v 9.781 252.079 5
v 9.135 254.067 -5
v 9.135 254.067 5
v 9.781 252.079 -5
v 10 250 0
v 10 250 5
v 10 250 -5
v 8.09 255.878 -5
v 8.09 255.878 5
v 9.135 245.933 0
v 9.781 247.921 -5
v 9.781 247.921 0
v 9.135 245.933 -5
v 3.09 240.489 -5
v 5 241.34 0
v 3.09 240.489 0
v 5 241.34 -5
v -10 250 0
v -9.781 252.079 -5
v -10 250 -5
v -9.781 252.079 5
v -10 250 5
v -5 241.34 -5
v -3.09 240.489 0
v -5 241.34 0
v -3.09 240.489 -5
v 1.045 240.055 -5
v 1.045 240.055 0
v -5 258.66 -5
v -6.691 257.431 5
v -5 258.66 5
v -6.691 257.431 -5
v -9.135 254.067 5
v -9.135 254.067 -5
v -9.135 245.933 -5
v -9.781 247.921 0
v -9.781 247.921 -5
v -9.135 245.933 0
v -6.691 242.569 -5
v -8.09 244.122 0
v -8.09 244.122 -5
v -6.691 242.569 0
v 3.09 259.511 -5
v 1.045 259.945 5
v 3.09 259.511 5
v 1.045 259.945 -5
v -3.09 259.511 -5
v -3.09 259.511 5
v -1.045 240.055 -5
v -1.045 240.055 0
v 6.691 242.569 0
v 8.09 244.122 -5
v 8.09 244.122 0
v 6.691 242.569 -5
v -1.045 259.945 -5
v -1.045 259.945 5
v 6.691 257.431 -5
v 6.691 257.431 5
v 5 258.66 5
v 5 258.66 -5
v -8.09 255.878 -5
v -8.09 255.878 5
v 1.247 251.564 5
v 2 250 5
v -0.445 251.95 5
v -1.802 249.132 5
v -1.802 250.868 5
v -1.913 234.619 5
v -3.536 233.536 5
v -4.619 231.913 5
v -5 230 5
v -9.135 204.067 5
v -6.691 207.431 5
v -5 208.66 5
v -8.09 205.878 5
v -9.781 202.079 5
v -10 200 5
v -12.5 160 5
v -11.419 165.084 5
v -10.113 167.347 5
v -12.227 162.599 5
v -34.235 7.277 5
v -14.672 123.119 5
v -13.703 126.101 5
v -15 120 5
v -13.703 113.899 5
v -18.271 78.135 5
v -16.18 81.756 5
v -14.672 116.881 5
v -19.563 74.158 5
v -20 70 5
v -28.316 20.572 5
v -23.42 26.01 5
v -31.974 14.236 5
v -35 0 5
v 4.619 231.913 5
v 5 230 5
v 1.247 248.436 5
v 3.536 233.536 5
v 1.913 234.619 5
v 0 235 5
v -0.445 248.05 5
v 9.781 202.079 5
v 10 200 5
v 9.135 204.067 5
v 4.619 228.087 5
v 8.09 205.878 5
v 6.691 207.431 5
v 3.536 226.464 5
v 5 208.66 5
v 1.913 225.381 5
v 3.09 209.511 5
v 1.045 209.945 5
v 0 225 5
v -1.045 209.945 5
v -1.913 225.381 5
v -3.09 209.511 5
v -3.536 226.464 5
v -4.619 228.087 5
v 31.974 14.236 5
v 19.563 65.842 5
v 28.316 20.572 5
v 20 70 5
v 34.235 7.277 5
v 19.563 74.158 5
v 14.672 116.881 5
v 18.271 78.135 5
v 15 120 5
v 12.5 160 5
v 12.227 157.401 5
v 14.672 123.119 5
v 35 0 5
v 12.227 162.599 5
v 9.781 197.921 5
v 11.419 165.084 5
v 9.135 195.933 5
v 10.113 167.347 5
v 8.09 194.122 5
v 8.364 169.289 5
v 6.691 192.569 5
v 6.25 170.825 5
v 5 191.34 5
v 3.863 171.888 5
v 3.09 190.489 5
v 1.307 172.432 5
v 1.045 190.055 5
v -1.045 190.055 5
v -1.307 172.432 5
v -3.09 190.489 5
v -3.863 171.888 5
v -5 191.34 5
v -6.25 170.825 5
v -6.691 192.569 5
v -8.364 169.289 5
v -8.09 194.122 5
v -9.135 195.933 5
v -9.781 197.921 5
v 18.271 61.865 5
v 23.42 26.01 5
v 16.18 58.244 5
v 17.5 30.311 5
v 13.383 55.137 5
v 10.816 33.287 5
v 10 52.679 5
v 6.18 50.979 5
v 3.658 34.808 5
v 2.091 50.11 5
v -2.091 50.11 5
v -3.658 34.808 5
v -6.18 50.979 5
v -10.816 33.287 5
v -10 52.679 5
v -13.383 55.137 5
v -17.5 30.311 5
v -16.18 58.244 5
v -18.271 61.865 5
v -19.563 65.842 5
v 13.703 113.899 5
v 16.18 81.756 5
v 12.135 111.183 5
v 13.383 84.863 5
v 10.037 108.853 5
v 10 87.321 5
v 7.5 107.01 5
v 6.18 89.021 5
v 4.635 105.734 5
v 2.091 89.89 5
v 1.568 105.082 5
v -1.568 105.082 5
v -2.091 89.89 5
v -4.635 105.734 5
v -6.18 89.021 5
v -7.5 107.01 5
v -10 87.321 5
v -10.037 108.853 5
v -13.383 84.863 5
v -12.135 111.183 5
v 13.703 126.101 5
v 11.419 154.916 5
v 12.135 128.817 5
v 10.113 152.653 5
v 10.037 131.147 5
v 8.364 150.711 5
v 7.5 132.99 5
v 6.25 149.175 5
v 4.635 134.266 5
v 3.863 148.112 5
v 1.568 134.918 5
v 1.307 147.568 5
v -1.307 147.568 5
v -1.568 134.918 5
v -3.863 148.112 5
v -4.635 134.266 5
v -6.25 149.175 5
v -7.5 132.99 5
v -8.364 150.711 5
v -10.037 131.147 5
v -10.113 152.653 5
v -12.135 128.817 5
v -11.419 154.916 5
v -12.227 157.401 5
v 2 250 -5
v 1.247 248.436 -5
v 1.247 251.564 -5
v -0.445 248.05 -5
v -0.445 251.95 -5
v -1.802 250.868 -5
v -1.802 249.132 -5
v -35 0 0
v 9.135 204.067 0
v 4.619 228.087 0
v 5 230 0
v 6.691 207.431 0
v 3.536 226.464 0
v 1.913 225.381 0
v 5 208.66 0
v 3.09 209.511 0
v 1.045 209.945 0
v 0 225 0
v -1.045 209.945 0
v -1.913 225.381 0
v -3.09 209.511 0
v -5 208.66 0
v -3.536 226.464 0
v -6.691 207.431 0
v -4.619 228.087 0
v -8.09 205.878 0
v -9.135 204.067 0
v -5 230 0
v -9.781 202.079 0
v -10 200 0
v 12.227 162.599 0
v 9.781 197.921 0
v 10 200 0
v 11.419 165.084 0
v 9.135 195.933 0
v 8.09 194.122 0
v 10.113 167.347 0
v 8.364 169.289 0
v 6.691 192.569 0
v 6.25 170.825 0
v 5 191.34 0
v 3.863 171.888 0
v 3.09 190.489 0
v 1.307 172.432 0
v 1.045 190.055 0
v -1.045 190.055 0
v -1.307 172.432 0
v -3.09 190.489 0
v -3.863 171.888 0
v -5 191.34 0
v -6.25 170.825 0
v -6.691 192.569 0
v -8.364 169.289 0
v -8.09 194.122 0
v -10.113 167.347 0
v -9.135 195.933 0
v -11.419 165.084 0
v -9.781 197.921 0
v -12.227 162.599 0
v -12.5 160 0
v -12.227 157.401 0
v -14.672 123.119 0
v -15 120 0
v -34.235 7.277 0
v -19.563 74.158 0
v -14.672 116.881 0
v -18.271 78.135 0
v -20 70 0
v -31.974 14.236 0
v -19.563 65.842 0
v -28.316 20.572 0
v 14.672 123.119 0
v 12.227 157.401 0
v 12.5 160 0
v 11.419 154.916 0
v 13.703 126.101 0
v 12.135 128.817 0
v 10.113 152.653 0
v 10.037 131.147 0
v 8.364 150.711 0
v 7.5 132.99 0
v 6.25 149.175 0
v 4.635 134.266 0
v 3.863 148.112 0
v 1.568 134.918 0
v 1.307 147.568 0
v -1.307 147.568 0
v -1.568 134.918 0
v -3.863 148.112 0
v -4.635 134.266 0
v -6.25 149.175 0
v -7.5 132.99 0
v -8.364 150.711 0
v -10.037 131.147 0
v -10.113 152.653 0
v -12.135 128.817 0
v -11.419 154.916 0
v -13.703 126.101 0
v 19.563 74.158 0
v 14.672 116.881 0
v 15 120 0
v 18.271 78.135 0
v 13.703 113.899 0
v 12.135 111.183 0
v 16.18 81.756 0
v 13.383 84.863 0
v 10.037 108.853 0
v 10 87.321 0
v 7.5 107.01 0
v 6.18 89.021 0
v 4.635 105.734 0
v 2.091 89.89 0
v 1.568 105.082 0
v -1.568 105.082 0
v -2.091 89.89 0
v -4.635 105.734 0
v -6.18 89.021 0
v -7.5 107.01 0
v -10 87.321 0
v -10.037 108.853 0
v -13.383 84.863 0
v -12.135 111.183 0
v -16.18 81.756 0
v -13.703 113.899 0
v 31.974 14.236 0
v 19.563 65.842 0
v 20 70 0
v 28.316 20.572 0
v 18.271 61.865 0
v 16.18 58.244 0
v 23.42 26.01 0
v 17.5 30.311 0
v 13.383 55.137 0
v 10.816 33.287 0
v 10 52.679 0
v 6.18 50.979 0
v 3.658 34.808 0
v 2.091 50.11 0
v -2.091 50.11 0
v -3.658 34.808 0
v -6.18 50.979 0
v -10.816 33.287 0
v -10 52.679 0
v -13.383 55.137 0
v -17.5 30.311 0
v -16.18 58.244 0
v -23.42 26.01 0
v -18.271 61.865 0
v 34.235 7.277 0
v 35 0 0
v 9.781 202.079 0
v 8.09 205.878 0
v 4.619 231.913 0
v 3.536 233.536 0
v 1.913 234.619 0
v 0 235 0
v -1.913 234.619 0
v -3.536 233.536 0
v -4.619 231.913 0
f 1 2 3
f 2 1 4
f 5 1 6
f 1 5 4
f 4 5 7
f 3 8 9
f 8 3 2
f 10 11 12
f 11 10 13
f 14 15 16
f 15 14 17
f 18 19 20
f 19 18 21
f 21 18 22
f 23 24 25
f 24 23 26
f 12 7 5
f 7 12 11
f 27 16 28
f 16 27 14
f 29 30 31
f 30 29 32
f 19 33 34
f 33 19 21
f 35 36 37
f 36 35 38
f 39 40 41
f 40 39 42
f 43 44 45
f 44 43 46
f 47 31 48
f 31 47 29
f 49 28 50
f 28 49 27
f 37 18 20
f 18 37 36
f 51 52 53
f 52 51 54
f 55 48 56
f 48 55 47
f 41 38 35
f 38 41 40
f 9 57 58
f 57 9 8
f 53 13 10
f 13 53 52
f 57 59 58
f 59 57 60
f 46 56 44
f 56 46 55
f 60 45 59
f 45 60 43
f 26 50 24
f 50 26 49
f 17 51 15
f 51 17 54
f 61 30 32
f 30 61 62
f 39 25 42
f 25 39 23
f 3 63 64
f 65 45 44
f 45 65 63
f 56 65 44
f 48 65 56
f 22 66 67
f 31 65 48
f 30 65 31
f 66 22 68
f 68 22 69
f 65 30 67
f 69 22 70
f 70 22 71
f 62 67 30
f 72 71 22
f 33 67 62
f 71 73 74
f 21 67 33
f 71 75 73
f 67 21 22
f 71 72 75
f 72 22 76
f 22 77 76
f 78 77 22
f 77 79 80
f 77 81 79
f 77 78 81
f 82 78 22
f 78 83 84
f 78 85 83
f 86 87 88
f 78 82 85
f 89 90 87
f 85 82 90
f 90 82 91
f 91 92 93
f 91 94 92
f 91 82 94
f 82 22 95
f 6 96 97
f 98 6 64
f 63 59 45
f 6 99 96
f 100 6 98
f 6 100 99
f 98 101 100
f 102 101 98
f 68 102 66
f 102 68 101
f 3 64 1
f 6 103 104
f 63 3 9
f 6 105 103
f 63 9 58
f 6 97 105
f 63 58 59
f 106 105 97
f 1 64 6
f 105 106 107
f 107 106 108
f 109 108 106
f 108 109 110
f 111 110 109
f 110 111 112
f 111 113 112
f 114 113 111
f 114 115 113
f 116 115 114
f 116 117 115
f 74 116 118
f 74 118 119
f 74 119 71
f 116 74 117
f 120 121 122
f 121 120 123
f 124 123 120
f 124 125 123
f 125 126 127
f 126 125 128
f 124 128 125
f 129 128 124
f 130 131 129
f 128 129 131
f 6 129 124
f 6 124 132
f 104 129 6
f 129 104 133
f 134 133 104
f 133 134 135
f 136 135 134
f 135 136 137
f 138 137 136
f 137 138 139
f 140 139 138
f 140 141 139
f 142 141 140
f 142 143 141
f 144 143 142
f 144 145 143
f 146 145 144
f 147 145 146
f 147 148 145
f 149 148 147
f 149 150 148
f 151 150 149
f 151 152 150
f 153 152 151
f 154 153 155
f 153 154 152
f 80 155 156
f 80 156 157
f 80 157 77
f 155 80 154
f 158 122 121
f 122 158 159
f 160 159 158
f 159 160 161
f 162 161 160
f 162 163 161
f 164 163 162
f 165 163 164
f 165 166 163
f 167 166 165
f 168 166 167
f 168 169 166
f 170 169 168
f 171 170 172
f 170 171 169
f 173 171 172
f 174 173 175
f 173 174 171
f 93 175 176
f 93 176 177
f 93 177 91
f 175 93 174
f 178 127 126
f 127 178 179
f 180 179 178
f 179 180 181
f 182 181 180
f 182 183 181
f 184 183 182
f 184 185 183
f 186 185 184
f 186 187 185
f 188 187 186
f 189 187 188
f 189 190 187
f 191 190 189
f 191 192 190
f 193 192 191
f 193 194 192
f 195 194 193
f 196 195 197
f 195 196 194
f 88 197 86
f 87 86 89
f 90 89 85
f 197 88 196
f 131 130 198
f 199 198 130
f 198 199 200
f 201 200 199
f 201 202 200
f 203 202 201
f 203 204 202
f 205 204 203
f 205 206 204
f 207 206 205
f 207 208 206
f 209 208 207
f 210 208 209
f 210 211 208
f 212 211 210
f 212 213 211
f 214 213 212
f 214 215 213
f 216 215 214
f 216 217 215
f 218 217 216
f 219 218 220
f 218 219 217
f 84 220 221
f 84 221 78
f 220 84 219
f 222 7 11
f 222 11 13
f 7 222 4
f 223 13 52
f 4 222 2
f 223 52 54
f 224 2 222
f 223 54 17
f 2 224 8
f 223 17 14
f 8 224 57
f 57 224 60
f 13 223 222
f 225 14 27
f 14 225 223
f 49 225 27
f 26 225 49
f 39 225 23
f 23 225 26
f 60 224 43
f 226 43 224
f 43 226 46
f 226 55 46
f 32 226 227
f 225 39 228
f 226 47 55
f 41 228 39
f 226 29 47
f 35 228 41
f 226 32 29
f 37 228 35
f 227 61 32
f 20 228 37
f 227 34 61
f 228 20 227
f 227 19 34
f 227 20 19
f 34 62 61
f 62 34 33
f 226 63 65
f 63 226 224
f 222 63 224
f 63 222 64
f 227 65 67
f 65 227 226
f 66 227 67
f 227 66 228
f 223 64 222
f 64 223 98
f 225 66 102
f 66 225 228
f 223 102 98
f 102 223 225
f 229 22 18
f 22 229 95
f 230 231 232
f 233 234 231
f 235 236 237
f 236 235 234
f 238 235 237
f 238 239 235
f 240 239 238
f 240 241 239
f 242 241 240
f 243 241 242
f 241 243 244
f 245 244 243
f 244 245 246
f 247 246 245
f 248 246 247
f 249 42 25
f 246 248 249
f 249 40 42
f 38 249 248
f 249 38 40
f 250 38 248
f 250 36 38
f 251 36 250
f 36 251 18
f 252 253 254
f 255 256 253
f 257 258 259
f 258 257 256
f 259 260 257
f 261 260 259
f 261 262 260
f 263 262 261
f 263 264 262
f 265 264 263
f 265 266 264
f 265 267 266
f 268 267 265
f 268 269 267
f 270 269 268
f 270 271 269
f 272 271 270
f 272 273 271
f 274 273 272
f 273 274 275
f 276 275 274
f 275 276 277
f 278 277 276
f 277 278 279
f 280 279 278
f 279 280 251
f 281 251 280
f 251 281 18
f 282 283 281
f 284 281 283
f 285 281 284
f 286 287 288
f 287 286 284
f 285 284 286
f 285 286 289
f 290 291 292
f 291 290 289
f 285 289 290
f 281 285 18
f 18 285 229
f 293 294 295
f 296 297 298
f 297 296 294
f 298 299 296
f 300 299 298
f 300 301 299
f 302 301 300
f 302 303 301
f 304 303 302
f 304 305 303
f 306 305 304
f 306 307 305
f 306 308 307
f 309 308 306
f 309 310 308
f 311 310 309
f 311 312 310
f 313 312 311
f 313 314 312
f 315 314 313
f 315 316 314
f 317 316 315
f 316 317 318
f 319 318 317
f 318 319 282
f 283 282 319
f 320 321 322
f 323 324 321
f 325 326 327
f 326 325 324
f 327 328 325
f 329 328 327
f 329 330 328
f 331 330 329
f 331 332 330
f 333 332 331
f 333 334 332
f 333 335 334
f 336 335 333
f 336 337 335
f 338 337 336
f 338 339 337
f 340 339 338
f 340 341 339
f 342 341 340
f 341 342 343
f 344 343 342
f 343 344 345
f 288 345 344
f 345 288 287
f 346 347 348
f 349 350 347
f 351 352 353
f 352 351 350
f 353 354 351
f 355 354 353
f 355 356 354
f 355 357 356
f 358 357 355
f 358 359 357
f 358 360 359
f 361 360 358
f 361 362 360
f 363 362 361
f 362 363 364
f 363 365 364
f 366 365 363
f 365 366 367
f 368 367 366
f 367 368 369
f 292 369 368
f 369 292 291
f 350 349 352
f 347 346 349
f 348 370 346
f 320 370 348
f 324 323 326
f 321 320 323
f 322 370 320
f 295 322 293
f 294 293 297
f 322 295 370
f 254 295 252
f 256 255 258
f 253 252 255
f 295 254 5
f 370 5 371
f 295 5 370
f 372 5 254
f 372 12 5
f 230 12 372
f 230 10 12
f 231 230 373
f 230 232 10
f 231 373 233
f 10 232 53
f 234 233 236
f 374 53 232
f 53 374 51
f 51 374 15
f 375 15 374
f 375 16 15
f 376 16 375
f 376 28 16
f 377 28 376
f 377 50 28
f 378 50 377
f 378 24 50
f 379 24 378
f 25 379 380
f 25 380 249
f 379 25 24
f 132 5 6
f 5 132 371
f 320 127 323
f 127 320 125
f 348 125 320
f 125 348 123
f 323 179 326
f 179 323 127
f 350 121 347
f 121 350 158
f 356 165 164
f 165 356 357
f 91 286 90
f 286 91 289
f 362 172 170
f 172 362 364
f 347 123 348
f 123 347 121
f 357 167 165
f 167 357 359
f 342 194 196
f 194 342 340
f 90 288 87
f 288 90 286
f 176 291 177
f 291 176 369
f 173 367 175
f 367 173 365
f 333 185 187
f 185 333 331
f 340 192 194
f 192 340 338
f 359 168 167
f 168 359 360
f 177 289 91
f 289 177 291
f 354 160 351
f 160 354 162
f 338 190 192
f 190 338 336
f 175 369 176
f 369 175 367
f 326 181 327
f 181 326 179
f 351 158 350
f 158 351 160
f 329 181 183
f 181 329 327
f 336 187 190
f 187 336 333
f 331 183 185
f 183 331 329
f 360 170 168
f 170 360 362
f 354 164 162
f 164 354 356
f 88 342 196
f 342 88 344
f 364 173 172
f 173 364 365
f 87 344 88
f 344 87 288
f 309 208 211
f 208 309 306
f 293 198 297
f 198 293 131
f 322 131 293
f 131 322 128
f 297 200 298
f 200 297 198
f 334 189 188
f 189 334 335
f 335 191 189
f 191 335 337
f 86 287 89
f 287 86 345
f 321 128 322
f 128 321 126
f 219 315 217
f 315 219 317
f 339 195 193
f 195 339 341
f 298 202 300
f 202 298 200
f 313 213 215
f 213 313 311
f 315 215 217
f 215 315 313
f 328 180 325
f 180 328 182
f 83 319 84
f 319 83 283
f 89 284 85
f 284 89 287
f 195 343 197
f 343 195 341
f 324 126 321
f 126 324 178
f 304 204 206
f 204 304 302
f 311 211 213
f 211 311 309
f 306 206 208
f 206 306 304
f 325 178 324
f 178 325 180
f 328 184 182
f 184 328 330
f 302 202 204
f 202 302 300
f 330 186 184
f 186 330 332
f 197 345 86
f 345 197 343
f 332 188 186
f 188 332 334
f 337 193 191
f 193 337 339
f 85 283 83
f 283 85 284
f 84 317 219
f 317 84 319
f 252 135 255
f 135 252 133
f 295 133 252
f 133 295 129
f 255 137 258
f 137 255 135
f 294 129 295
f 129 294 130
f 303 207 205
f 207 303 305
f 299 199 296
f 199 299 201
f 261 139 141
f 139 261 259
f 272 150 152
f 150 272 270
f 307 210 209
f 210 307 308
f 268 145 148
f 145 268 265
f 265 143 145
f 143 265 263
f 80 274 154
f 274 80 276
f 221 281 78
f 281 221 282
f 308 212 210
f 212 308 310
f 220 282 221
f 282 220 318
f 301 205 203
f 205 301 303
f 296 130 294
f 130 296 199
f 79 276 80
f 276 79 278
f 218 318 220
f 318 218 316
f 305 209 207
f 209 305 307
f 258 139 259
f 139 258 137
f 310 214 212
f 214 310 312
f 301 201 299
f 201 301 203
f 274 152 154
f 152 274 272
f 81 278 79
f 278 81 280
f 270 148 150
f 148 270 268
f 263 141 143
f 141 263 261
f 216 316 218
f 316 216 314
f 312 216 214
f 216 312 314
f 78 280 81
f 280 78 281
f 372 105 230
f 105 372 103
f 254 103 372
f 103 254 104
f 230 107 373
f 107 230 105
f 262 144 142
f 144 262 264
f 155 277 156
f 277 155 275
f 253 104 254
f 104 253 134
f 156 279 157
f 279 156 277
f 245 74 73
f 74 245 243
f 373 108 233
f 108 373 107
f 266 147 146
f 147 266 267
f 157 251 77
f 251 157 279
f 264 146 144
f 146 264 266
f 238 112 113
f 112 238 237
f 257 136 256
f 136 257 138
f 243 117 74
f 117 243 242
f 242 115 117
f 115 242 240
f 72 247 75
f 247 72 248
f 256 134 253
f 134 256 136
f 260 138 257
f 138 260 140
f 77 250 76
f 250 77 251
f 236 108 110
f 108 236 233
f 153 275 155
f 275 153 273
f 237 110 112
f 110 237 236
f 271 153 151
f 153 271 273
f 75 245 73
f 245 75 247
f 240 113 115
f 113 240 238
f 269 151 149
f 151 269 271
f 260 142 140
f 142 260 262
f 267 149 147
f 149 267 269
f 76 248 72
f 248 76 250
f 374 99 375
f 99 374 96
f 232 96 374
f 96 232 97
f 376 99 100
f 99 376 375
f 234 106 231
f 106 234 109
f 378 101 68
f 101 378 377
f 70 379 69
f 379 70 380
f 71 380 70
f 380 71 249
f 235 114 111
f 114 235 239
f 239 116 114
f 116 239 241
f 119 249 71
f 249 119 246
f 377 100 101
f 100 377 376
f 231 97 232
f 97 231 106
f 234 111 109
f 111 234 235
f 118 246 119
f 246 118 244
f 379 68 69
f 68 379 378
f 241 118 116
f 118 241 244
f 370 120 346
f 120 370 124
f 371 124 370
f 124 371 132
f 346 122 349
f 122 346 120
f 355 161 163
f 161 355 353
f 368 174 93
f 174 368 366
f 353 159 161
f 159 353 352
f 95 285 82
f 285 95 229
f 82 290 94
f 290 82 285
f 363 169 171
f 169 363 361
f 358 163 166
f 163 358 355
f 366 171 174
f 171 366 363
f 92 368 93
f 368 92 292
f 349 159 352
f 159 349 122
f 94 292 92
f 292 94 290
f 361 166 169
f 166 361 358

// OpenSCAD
difference(){
translate([0,250,0])
cylinder(h=10,d=20,center=true);
translate([0,250,0])
cylinder(h=20,d=4,center=true);}

difference(){
linear_extrude(5)
polygon(points=[
[-35,0],
[35,0],
[10,250],
[-10,250]
]);

translate([0,70,0])
cylinder(h=20,d=40,center=true);

translate([0,120,0])
cylinder(h=20,d=30,center=true);

translate([0,160,0])
cylinder(h=20,d=25,center=true);

translate([0,200,0])
cylinder(h=20,d=20,center=true);


translate([0,230,0])
cylinder(h=20,d=10,center=true);

translate([0,0,5])
cylinder(h=20,d=70,center=true);

translate([0,250,0])
cylinder(h=20,d=4,center=true);
}
